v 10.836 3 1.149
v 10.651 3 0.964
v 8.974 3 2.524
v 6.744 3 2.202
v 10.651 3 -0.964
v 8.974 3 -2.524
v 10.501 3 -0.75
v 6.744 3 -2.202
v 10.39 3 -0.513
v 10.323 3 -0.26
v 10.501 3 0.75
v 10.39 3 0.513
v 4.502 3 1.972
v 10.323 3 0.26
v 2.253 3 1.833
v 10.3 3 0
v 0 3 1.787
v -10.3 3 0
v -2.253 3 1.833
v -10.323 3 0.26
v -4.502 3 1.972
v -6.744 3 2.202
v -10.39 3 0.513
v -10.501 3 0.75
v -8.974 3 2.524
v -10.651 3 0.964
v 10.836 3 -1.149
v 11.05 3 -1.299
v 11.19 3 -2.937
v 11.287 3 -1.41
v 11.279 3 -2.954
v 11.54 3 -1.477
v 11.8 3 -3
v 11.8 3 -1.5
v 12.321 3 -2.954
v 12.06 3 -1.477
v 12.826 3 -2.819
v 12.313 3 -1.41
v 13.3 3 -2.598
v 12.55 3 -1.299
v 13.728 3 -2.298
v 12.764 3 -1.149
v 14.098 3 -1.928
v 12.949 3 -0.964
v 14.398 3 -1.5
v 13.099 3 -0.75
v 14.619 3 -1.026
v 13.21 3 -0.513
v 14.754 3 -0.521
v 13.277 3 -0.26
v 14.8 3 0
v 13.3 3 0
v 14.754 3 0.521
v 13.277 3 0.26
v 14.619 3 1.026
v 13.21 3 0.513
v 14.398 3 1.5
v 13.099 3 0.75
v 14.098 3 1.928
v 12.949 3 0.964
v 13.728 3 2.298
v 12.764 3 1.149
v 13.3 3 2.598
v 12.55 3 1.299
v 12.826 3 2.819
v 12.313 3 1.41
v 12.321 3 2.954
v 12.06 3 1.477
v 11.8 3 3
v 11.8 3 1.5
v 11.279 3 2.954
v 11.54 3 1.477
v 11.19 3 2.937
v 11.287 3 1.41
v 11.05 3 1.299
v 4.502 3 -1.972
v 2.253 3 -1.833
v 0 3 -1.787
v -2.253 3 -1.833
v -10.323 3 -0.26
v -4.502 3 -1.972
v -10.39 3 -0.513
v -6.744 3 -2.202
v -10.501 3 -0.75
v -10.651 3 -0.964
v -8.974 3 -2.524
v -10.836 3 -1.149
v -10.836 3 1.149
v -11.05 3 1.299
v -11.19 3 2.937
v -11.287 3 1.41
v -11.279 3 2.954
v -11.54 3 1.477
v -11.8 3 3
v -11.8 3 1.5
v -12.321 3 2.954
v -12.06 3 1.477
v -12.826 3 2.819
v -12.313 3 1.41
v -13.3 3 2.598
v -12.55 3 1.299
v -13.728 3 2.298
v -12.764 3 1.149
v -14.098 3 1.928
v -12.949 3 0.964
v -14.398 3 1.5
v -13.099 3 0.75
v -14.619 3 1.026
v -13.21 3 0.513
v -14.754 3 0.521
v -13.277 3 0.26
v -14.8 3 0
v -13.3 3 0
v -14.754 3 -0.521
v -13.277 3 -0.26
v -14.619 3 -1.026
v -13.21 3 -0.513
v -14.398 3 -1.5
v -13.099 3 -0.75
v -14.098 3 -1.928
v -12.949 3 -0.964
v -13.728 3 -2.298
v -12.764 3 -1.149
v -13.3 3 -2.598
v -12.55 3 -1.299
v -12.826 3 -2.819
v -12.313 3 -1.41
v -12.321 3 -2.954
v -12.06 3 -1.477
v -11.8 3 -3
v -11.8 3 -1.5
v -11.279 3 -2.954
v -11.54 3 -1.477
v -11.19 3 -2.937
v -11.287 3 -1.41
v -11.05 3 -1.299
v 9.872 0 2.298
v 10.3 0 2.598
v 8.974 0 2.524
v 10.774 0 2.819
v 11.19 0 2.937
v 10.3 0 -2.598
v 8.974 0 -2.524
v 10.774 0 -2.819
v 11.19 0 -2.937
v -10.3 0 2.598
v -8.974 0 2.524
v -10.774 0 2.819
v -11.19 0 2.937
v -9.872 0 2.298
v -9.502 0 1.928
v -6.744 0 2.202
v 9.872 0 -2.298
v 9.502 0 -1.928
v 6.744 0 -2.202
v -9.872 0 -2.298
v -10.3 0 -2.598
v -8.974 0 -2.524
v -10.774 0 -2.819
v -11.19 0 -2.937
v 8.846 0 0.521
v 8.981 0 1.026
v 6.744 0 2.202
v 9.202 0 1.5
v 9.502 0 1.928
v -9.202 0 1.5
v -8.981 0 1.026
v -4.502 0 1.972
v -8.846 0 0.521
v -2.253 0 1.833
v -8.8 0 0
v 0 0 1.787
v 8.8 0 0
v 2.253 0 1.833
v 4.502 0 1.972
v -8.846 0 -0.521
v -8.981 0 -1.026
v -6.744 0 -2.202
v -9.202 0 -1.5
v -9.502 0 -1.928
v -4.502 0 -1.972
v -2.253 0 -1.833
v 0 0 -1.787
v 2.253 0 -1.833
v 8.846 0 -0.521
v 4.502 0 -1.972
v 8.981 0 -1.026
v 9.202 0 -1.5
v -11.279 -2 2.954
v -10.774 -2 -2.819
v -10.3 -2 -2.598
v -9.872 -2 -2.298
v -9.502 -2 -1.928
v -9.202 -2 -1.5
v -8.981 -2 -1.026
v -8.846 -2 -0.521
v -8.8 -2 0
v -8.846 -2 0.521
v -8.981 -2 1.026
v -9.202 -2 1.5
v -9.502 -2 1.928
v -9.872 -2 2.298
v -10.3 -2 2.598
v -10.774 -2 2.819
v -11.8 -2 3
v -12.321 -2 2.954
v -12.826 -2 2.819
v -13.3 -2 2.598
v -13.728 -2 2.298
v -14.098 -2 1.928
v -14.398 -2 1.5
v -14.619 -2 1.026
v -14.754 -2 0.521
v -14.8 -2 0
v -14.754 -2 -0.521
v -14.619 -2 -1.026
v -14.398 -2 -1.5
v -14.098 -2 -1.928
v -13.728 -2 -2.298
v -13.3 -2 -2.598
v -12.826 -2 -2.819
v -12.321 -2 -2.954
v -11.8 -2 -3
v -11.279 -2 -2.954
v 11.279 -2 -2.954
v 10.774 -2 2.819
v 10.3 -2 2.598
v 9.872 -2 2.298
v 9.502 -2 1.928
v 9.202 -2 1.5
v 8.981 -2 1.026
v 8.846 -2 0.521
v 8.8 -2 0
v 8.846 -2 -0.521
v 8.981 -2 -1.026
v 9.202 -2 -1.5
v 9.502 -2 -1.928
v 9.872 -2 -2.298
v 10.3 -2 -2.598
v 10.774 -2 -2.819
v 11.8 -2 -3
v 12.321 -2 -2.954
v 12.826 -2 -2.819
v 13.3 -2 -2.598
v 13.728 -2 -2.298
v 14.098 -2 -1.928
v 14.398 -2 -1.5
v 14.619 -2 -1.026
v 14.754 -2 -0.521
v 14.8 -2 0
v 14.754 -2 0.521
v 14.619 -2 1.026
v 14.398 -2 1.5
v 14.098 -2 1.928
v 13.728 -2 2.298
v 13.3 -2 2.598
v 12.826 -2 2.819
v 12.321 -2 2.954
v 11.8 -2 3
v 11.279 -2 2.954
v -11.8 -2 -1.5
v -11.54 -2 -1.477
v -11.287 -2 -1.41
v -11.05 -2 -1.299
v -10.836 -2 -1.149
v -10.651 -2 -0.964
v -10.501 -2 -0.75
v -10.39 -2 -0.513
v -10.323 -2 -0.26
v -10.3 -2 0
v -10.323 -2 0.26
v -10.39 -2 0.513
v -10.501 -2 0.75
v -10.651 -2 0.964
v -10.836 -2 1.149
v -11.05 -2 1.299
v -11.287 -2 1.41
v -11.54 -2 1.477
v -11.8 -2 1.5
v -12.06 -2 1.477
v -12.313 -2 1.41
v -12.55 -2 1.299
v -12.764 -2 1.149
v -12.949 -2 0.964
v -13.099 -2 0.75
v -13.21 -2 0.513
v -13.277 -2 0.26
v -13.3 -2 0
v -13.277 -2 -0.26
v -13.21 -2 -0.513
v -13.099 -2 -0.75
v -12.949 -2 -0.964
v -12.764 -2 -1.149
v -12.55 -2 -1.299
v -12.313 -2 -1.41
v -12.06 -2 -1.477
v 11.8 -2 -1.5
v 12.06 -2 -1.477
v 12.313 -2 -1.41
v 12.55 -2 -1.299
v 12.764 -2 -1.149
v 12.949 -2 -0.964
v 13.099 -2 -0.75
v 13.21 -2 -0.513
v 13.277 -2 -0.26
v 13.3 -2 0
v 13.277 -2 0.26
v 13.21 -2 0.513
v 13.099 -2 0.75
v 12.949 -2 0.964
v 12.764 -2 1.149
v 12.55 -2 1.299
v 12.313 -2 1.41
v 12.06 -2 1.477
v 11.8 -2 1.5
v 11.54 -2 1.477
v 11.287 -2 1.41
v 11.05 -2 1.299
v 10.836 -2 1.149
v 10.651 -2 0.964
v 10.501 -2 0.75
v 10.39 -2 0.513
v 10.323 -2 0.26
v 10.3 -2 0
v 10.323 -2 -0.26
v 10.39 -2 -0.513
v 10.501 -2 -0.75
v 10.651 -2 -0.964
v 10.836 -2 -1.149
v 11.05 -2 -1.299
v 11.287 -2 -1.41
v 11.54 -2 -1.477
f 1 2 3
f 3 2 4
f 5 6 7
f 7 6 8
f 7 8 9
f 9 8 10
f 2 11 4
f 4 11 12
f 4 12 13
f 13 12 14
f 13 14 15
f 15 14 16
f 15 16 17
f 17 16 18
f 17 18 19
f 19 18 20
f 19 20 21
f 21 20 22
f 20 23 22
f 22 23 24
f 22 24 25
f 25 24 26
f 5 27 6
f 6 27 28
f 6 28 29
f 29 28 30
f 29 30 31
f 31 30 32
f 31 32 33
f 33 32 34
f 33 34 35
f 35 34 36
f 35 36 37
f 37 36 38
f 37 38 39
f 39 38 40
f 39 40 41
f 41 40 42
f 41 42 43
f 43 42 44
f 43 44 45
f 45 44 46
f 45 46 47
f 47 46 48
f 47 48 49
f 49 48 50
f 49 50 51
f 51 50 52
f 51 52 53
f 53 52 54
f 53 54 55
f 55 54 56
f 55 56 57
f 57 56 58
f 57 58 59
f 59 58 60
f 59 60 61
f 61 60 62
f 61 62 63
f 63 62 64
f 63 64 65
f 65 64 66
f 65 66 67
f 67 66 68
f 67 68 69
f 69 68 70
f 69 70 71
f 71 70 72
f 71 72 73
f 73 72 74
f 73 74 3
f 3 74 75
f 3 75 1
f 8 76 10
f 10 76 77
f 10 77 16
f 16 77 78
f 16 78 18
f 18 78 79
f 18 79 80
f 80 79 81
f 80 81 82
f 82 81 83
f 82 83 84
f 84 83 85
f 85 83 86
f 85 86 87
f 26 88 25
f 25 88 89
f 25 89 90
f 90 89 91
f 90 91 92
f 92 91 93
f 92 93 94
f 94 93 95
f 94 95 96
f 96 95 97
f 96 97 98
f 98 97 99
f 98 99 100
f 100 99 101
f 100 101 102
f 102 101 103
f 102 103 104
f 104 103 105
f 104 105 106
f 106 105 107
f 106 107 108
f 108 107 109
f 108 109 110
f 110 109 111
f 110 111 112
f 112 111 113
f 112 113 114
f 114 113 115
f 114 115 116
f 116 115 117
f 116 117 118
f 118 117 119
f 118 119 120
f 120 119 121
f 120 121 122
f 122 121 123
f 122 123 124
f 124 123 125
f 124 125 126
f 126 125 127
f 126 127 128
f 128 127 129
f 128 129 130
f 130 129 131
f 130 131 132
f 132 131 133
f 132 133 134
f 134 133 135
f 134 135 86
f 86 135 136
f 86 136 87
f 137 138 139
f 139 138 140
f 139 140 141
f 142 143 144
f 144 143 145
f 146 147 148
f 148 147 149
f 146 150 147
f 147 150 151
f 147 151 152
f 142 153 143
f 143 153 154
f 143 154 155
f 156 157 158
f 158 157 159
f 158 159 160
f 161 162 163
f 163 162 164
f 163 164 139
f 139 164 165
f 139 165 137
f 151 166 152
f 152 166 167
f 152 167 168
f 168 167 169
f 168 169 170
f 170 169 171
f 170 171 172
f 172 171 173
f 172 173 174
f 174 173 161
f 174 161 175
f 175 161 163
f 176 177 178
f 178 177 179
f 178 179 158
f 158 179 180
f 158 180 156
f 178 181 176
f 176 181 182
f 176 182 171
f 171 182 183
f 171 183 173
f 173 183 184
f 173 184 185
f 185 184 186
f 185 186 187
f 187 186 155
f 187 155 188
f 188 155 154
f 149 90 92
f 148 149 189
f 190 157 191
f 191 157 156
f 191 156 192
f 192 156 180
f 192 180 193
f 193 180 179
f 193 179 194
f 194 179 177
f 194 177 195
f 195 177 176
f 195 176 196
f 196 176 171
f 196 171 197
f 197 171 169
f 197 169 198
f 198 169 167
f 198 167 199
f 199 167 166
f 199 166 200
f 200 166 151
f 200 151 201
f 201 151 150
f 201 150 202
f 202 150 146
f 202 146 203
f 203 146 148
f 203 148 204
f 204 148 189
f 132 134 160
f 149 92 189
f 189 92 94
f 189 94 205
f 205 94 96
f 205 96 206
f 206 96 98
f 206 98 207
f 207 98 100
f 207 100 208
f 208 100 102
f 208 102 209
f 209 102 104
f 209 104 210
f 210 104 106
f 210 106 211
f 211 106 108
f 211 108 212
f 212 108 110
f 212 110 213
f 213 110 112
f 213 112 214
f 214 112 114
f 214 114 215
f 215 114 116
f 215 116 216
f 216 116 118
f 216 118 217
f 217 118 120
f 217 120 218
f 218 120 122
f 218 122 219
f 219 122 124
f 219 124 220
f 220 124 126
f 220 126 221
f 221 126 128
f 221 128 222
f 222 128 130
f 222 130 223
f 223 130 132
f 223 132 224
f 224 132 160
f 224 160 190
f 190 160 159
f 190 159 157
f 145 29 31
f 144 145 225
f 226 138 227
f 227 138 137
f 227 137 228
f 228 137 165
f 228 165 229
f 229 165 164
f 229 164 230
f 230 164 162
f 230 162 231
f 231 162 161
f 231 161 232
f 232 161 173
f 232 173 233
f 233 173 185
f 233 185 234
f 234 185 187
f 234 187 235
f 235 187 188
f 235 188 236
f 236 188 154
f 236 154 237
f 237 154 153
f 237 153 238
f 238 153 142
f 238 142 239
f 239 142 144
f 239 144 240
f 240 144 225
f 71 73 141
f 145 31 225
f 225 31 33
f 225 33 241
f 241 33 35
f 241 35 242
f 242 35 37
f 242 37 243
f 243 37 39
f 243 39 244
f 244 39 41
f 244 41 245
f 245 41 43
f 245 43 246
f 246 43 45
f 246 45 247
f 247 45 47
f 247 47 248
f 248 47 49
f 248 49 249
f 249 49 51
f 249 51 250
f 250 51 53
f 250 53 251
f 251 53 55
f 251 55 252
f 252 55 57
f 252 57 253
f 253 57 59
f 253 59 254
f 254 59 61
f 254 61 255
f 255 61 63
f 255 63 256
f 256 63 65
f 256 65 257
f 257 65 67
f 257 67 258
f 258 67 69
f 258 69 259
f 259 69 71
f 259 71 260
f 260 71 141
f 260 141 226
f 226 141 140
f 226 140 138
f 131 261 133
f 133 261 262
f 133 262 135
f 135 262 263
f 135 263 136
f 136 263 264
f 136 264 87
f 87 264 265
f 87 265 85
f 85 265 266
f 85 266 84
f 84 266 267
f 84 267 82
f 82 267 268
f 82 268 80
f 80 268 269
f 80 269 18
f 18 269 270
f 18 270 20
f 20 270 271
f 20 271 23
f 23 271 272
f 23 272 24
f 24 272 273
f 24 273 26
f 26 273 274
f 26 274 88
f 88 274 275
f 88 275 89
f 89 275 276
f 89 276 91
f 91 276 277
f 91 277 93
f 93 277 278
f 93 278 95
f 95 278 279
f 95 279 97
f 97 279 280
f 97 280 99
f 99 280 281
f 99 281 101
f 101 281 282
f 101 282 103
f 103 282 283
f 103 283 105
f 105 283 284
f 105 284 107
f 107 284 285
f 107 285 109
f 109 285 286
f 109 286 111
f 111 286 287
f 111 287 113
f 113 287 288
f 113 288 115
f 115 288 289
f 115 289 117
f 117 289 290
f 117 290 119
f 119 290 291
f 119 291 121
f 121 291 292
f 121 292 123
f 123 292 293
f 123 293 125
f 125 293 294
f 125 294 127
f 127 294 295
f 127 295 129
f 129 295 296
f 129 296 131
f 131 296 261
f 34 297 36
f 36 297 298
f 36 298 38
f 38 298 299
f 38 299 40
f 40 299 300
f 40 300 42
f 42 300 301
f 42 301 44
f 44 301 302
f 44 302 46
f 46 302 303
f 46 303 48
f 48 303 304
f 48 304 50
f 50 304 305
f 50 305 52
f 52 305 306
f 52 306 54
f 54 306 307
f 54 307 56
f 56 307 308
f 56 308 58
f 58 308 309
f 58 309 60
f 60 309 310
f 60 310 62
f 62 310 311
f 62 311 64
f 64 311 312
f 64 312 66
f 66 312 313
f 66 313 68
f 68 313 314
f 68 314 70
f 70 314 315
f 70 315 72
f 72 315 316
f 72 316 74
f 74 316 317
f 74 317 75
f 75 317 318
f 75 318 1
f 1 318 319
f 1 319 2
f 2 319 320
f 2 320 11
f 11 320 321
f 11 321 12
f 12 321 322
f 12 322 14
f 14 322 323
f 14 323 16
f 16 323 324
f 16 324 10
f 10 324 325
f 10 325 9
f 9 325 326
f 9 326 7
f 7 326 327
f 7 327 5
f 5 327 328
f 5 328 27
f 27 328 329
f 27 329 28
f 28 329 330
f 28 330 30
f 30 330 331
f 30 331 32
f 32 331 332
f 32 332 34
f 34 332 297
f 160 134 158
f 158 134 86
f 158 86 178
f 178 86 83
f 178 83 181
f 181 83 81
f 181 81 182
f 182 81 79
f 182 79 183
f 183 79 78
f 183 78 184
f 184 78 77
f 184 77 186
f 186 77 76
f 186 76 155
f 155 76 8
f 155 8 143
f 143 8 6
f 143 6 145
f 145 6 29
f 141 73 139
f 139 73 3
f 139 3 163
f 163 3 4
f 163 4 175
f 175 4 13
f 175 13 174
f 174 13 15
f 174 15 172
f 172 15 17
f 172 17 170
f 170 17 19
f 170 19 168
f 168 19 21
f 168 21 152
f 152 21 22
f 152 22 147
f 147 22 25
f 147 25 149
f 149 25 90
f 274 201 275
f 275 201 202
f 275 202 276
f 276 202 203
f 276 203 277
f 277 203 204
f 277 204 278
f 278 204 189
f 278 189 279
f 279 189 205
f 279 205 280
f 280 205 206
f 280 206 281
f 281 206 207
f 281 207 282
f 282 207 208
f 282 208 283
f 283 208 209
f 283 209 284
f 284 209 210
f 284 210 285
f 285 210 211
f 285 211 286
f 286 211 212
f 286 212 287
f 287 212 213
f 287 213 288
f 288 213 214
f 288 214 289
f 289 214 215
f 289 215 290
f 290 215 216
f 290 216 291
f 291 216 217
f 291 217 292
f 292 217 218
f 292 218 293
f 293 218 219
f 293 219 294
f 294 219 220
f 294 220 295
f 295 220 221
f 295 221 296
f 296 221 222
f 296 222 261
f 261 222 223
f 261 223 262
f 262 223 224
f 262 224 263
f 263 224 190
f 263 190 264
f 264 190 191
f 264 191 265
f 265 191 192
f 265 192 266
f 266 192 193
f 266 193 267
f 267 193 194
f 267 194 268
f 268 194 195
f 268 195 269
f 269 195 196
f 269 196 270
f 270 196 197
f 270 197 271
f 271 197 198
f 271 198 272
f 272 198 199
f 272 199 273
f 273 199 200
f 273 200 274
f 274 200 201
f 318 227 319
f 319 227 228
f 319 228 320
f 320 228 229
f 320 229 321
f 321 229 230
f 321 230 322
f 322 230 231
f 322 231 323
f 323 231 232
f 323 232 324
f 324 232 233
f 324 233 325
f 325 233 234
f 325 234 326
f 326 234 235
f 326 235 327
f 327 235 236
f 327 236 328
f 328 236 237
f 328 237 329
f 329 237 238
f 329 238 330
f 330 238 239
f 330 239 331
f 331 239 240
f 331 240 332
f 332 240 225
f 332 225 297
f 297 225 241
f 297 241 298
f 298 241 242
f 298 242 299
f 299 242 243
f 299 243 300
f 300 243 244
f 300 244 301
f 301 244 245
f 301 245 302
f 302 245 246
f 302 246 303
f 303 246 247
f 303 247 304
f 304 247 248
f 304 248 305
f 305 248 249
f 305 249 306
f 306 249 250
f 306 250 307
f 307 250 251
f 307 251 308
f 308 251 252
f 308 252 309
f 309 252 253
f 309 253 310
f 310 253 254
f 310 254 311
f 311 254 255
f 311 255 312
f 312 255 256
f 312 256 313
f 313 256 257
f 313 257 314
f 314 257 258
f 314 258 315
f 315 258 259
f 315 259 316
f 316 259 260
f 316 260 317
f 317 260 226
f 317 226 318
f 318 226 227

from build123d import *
from build123d.topology import SkipClean

# Parameters (mm, degrees)
SKETCH1_R           = 1.5
BOSS_EXTRUDE1_DEPTH = 3
SKETCH2_OUTSIDE_W   = 37.67
SKETCH2_OUTSIDE_H   = 14.07
CUT_EXTRUDE1_DEPTH  = 16.396103403
BOSS_EXTRUDE2_START = -3
SKETCH3_R           = 1.5
BOSS_EXTRUDE2_DEPTH = 2


with BuildPart() as part:
    # Sketch1 → Boss-Extrude1 (new body)
    with BuildSketch(Plane(origin=(0, 0, 0), x_dir=(1, 0, 0), z_dir=(0, 1, 0))):
        with BuildLine():
            Line((-11.8, 3), (11.8, 3))
            ThreePointArc((11.8, 3), (14.8, 0), (11.8, -3))
            Line((11.8, -3), (-11.8, -3))
            ThreePointArc((-11.8, -3), (-14.8, 0), (-11.8, 3))
        make_face()
        with Locations(Location((-11.8, 0, 0), (0, 0, 270))):
            Circle(SKETCH1_R, mode=Mode.SUBTRACT)
        with Locations(Location((11.8, 0, 0), (0, 0, 270))):
            Circle(SKETCH1_R, mode=Mode.SUBTRACT)
    extrude(amount=BOSS_EXTRUDE1_DEPTH)

    # Sketch2 outside → Cut-Extrude1 (cut, through all)
    with SkipClean():  # the faces are left unmerged after this step: merging them gives an invalid solid
        with BuildSketch(Plane(origin=(0, 3, 0), x_dir=(1, 0, 0), z_dir=(0, 1, 0))):
            Rectangle(SKETCH2_OUTSIDE_W, SKETCH2_OUTSIDE_H)
            with BuildLine():
                ThreePointArc((-11.189655172, 2.937257086), (-14.8, 0), (-11.189655172, -2.937257086))
                ThreePointArc((-11.189655172, -2.937257086), (0, -1.786970337), (11.189655172, -2.937257086))
                ThreePointArc((11.189655172, -2.937257086), (14.8, 0), (11.189655172, 2.937257086))
                ThreePointArc((11.189655172, 2.937257086), (0, 1.786970337), (-11.189655172, 2.937257086))
            make_face(mode=Mode.SUBTRACT)
        extrude(amount=-CUT_EXTRUDE1_DEPTH, mode=Mode.SUBTRACT)

    # Sketch3 → Boss-Extrude2 (add)
    # profile 1 of 2: a face of its own
    with SkipClean():  # the faces are left unmerged after this step: merging them gives an invalid solid
        with BuildSketch(Plane(origin=(0, 3, 0), x_dir=(1, 0, 0), z_dir=(0, 1, 0)).offset(BOSS_EXTRUDE2_START)):
            with BuildLine():
                ThreePointArc((-11.189655172, -2.937257086), (-9.472873609, -1.893273028), (-8.8, 0))
                ThreePointArc((-8.8, 0), (-9.472873609, 1.893273028), (-11.189655172, 2.937257086))
                ThreePointArc((-11.189655172, 2.937257086), (-14.8, 0), (-11.189655172, -2.937257086))
            make_face()
            with Locations(Location((-11.8, 0, 0), (0, 0, 270))):
                Circle(SKETCH3_R, mode=Mode.SUBTRACT)
        # profile 2 of 2: a face of its own
        with BuildSketch(Plane(origin=(0, 3, 0), x_dir=(1, 0, 0), z_dir=(0, 1, 0)).offset(BOSS_EXTRUDE2_START)):
            with BuildLine():
                ThreePointArc((11.189655172, -2.937257086), (13.693273028, -2.327126391), (14.8, 0))
                ThreePointArc((14.8, 0), (13.693273028, 2.327126391), (11.189655172, 2.937257086))
                ThreePointArc((11.189655172, 2.937257086), (8.8, 0), (11.189655172, -2.937257086))
            make_face()
            with Locations(Location((11.8, 0, 0), (0, 0, 270))):
                Circle(SKETCH3_R, mode=Mode.SUBTRACT)
        extrude(amount=-BOSS_EXTRUDE2_DEPTH)


solid = part.part
